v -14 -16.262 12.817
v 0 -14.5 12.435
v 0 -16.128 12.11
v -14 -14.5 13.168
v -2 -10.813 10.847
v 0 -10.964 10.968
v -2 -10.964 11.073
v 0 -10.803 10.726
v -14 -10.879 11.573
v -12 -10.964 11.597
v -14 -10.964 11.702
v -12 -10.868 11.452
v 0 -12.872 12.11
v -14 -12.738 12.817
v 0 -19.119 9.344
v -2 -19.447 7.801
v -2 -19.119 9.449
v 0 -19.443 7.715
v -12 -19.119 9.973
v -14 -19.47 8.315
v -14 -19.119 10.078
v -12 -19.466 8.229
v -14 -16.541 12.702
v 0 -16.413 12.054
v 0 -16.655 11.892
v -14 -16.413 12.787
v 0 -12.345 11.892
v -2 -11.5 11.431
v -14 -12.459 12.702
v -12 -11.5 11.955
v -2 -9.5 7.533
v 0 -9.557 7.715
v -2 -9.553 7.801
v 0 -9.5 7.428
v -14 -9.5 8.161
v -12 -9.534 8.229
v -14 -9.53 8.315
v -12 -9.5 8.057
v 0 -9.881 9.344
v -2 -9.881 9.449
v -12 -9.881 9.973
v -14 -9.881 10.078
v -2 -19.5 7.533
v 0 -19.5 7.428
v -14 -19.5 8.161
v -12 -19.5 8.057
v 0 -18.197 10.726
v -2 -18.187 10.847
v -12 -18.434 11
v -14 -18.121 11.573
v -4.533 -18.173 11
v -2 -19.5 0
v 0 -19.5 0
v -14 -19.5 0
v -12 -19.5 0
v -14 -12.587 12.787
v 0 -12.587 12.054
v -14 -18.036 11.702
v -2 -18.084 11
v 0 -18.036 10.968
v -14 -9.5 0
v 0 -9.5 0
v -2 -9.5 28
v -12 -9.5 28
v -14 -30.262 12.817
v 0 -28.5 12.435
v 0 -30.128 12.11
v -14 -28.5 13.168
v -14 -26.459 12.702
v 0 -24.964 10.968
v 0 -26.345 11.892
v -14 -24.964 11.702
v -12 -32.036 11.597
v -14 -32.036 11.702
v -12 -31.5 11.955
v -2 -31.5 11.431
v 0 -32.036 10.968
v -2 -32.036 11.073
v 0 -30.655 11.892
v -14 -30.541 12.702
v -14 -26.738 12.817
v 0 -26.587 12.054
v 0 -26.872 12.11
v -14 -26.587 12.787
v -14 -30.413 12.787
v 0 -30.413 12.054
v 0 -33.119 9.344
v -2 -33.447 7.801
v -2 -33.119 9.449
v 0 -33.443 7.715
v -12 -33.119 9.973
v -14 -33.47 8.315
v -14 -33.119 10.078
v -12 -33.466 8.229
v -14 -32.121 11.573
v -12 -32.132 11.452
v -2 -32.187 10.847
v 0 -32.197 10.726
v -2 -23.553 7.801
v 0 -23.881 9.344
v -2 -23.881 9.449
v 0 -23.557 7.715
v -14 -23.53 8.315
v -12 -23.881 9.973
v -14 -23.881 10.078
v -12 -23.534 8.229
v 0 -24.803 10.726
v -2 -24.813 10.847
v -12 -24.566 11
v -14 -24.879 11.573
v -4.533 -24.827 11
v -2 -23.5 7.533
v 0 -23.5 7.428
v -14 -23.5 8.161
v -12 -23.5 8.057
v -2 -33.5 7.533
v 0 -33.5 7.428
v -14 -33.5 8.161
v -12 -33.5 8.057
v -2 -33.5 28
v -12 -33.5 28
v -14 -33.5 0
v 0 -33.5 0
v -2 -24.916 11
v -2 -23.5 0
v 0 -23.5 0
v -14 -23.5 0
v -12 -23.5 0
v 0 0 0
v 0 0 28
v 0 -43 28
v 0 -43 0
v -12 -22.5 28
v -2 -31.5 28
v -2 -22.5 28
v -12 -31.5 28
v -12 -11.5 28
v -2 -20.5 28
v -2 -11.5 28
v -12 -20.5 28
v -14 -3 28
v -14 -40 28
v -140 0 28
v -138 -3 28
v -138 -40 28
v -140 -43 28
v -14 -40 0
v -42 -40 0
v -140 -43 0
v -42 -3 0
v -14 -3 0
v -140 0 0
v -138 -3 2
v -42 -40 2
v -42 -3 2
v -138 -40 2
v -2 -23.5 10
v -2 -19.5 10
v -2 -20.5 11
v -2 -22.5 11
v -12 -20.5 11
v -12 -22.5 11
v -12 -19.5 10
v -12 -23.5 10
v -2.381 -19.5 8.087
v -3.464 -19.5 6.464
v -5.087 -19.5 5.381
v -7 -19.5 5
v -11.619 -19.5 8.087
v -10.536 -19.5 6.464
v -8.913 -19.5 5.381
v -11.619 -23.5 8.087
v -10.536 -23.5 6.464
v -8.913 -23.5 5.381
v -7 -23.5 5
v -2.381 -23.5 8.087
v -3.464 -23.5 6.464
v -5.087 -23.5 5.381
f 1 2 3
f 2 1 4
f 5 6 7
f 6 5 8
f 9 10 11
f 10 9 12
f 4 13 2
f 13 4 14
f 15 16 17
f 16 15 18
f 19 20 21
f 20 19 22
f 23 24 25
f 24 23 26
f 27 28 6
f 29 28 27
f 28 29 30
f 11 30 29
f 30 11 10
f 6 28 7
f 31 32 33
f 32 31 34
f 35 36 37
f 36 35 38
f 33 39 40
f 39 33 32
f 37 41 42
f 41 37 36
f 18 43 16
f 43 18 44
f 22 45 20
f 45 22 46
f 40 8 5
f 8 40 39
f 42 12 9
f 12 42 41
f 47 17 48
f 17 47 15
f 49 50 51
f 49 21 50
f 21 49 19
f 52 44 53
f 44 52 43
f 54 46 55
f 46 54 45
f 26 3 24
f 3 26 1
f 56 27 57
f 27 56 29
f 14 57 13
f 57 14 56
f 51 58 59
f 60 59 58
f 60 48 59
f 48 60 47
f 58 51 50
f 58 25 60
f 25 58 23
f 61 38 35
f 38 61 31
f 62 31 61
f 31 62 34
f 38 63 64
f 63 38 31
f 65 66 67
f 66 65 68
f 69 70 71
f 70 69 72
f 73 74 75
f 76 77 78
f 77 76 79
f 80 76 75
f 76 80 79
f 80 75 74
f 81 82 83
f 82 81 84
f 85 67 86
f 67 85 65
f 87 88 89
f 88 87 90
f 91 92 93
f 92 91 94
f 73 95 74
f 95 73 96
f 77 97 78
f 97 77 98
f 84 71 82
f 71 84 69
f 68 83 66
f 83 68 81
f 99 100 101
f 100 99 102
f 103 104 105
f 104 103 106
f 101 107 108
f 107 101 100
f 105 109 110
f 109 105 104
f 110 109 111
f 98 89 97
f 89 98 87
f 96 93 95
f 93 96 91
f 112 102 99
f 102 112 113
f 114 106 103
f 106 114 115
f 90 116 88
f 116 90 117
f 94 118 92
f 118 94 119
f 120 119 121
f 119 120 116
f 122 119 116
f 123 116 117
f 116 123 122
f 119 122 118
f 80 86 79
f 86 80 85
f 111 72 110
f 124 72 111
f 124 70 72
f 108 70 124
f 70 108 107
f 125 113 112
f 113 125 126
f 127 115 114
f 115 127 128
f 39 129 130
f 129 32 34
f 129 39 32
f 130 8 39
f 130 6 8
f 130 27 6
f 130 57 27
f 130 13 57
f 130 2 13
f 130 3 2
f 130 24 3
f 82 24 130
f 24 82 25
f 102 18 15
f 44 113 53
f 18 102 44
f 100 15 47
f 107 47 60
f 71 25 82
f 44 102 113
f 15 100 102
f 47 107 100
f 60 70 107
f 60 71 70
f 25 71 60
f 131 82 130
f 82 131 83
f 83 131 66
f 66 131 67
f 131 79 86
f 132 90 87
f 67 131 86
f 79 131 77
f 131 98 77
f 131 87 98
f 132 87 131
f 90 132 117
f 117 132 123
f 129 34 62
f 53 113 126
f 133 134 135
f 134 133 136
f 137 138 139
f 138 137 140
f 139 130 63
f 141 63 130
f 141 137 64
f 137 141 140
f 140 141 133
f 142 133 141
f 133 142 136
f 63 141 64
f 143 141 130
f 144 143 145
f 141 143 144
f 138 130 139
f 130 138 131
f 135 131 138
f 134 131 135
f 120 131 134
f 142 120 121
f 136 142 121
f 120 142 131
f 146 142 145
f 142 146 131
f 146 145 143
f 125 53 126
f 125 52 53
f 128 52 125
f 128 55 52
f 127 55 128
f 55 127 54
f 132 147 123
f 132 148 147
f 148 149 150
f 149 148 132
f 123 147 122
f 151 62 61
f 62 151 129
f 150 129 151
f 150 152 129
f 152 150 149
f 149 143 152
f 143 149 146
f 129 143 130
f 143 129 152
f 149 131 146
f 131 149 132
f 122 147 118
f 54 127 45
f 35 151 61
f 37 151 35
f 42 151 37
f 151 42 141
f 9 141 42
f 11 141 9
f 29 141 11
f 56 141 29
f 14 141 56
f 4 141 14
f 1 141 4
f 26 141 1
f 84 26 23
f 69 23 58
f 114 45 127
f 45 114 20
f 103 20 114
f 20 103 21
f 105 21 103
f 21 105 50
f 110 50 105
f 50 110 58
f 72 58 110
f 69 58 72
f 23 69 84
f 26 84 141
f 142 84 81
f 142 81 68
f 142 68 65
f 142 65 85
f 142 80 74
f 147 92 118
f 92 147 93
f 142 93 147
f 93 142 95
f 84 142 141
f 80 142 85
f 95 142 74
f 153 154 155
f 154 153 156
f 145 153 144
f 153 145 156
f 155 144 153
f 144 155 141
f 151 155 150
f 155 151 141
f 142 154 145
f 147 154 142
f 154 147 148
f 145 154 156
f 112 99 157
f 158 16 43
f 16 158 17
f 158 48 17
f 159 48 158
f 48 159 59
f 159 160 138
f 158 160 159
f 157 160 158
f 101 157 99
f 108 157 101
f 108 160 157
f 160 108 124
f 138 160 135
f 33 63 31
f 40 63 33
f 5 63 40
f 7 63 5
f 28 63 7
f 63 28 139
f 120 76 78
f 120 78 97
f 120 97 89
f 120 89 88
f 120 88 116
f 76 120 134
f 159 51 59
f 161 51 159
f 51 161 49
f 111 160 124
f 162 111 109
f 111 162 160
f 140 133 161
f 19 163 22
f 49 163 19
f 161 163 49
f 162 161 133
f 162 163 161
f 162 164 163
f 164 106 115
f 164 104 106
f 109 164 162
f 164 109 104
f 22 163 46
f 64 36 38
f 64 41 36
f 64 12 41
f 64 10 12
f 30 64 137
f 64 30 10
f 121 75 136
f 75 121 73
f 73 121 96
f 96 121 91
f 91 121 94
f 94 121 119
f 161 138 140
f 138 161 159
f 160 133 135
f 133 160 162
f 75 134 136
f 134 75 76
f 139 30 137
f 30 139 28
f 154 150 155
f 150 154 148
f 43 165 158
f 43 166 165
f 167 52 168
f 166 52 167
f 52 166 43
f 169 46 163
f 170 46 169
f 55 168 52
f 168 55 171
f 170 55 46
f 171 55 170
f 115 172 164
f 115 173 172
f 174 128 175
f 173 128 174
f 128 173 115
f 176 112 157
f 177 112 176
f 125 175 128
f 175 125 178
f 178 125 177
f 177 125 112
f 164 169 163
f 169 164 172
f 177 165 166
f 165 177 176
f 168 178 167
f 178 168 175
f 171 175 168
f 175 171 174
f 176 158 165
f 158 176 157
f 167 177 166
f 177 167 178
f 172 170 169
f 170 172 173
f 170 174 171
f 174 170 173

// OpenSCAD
relLen=120;
relWid=33;
relHig=18;
rel=[relLen,relWid,relHig];



translate([-(relLen+20)/2,-(relWid+10)/2,(relHig+10)/2])
    union() {
        difference() {
            cube(rel+[20,10,10],center=true);
            translate([-6,0,2]) cube(rel+[4,4,10],center=true); 
            for(t=[[0,7,0],[0,-7,0]]) {
                translate(t)
                    hull() {
                        translate([40,0,relHig/-2+4]) rotate([0,93,0]) cylinder(d=10,h=200);
                        translate([40,0,relHig/-2+4-10]) rotate([0,93,0]) cylinder(d=10,h=200);
                    }
            }
            translate([relLen/2+3,0,-13]) cube([10,24,20],center=true);
            translate([relLen/2+3,0,+6]) cube([10,2,20],center=true);
            translate([relLen/2+3,-11,+6]) cube([10,2,20],center=true);
            translate([relLen/2+3,11,+6]) cube([10,2,20],center=true);
            translate([relLen/2+13,-7,-17]) cube([10,10,20],center=true);
            translate([relLen/2+13,7,-17]) cube([10,10,20],center=true);
            translate([42,0,-10]) cube([relHig + 10,relWid+4,10],center=true);
        }
        translate([63,0,-9])
            difference() {
                cube([10,4,10],center=true);
                translate([0,0,5])
                    rotate([90,0,0])
                    cylinder(d=10,h=30,center=true);
            }
    }


/* shadeLen=50; */
/* shadeWid=53; */
/* shadeHig=27+relHig+10; */
/* translate([shadeLen/2,-shadeWid/2,-shadeHig/2+relHig+10]) */
/* difference(){ */
/*     cube([shadeLen,shadeWid,shadeHig],center=true); */
/*     translate([-1,0,2]) */
/*         cube([shadeLen-2,shadeWid-4,shadeHig],center=true); */
/* } */
